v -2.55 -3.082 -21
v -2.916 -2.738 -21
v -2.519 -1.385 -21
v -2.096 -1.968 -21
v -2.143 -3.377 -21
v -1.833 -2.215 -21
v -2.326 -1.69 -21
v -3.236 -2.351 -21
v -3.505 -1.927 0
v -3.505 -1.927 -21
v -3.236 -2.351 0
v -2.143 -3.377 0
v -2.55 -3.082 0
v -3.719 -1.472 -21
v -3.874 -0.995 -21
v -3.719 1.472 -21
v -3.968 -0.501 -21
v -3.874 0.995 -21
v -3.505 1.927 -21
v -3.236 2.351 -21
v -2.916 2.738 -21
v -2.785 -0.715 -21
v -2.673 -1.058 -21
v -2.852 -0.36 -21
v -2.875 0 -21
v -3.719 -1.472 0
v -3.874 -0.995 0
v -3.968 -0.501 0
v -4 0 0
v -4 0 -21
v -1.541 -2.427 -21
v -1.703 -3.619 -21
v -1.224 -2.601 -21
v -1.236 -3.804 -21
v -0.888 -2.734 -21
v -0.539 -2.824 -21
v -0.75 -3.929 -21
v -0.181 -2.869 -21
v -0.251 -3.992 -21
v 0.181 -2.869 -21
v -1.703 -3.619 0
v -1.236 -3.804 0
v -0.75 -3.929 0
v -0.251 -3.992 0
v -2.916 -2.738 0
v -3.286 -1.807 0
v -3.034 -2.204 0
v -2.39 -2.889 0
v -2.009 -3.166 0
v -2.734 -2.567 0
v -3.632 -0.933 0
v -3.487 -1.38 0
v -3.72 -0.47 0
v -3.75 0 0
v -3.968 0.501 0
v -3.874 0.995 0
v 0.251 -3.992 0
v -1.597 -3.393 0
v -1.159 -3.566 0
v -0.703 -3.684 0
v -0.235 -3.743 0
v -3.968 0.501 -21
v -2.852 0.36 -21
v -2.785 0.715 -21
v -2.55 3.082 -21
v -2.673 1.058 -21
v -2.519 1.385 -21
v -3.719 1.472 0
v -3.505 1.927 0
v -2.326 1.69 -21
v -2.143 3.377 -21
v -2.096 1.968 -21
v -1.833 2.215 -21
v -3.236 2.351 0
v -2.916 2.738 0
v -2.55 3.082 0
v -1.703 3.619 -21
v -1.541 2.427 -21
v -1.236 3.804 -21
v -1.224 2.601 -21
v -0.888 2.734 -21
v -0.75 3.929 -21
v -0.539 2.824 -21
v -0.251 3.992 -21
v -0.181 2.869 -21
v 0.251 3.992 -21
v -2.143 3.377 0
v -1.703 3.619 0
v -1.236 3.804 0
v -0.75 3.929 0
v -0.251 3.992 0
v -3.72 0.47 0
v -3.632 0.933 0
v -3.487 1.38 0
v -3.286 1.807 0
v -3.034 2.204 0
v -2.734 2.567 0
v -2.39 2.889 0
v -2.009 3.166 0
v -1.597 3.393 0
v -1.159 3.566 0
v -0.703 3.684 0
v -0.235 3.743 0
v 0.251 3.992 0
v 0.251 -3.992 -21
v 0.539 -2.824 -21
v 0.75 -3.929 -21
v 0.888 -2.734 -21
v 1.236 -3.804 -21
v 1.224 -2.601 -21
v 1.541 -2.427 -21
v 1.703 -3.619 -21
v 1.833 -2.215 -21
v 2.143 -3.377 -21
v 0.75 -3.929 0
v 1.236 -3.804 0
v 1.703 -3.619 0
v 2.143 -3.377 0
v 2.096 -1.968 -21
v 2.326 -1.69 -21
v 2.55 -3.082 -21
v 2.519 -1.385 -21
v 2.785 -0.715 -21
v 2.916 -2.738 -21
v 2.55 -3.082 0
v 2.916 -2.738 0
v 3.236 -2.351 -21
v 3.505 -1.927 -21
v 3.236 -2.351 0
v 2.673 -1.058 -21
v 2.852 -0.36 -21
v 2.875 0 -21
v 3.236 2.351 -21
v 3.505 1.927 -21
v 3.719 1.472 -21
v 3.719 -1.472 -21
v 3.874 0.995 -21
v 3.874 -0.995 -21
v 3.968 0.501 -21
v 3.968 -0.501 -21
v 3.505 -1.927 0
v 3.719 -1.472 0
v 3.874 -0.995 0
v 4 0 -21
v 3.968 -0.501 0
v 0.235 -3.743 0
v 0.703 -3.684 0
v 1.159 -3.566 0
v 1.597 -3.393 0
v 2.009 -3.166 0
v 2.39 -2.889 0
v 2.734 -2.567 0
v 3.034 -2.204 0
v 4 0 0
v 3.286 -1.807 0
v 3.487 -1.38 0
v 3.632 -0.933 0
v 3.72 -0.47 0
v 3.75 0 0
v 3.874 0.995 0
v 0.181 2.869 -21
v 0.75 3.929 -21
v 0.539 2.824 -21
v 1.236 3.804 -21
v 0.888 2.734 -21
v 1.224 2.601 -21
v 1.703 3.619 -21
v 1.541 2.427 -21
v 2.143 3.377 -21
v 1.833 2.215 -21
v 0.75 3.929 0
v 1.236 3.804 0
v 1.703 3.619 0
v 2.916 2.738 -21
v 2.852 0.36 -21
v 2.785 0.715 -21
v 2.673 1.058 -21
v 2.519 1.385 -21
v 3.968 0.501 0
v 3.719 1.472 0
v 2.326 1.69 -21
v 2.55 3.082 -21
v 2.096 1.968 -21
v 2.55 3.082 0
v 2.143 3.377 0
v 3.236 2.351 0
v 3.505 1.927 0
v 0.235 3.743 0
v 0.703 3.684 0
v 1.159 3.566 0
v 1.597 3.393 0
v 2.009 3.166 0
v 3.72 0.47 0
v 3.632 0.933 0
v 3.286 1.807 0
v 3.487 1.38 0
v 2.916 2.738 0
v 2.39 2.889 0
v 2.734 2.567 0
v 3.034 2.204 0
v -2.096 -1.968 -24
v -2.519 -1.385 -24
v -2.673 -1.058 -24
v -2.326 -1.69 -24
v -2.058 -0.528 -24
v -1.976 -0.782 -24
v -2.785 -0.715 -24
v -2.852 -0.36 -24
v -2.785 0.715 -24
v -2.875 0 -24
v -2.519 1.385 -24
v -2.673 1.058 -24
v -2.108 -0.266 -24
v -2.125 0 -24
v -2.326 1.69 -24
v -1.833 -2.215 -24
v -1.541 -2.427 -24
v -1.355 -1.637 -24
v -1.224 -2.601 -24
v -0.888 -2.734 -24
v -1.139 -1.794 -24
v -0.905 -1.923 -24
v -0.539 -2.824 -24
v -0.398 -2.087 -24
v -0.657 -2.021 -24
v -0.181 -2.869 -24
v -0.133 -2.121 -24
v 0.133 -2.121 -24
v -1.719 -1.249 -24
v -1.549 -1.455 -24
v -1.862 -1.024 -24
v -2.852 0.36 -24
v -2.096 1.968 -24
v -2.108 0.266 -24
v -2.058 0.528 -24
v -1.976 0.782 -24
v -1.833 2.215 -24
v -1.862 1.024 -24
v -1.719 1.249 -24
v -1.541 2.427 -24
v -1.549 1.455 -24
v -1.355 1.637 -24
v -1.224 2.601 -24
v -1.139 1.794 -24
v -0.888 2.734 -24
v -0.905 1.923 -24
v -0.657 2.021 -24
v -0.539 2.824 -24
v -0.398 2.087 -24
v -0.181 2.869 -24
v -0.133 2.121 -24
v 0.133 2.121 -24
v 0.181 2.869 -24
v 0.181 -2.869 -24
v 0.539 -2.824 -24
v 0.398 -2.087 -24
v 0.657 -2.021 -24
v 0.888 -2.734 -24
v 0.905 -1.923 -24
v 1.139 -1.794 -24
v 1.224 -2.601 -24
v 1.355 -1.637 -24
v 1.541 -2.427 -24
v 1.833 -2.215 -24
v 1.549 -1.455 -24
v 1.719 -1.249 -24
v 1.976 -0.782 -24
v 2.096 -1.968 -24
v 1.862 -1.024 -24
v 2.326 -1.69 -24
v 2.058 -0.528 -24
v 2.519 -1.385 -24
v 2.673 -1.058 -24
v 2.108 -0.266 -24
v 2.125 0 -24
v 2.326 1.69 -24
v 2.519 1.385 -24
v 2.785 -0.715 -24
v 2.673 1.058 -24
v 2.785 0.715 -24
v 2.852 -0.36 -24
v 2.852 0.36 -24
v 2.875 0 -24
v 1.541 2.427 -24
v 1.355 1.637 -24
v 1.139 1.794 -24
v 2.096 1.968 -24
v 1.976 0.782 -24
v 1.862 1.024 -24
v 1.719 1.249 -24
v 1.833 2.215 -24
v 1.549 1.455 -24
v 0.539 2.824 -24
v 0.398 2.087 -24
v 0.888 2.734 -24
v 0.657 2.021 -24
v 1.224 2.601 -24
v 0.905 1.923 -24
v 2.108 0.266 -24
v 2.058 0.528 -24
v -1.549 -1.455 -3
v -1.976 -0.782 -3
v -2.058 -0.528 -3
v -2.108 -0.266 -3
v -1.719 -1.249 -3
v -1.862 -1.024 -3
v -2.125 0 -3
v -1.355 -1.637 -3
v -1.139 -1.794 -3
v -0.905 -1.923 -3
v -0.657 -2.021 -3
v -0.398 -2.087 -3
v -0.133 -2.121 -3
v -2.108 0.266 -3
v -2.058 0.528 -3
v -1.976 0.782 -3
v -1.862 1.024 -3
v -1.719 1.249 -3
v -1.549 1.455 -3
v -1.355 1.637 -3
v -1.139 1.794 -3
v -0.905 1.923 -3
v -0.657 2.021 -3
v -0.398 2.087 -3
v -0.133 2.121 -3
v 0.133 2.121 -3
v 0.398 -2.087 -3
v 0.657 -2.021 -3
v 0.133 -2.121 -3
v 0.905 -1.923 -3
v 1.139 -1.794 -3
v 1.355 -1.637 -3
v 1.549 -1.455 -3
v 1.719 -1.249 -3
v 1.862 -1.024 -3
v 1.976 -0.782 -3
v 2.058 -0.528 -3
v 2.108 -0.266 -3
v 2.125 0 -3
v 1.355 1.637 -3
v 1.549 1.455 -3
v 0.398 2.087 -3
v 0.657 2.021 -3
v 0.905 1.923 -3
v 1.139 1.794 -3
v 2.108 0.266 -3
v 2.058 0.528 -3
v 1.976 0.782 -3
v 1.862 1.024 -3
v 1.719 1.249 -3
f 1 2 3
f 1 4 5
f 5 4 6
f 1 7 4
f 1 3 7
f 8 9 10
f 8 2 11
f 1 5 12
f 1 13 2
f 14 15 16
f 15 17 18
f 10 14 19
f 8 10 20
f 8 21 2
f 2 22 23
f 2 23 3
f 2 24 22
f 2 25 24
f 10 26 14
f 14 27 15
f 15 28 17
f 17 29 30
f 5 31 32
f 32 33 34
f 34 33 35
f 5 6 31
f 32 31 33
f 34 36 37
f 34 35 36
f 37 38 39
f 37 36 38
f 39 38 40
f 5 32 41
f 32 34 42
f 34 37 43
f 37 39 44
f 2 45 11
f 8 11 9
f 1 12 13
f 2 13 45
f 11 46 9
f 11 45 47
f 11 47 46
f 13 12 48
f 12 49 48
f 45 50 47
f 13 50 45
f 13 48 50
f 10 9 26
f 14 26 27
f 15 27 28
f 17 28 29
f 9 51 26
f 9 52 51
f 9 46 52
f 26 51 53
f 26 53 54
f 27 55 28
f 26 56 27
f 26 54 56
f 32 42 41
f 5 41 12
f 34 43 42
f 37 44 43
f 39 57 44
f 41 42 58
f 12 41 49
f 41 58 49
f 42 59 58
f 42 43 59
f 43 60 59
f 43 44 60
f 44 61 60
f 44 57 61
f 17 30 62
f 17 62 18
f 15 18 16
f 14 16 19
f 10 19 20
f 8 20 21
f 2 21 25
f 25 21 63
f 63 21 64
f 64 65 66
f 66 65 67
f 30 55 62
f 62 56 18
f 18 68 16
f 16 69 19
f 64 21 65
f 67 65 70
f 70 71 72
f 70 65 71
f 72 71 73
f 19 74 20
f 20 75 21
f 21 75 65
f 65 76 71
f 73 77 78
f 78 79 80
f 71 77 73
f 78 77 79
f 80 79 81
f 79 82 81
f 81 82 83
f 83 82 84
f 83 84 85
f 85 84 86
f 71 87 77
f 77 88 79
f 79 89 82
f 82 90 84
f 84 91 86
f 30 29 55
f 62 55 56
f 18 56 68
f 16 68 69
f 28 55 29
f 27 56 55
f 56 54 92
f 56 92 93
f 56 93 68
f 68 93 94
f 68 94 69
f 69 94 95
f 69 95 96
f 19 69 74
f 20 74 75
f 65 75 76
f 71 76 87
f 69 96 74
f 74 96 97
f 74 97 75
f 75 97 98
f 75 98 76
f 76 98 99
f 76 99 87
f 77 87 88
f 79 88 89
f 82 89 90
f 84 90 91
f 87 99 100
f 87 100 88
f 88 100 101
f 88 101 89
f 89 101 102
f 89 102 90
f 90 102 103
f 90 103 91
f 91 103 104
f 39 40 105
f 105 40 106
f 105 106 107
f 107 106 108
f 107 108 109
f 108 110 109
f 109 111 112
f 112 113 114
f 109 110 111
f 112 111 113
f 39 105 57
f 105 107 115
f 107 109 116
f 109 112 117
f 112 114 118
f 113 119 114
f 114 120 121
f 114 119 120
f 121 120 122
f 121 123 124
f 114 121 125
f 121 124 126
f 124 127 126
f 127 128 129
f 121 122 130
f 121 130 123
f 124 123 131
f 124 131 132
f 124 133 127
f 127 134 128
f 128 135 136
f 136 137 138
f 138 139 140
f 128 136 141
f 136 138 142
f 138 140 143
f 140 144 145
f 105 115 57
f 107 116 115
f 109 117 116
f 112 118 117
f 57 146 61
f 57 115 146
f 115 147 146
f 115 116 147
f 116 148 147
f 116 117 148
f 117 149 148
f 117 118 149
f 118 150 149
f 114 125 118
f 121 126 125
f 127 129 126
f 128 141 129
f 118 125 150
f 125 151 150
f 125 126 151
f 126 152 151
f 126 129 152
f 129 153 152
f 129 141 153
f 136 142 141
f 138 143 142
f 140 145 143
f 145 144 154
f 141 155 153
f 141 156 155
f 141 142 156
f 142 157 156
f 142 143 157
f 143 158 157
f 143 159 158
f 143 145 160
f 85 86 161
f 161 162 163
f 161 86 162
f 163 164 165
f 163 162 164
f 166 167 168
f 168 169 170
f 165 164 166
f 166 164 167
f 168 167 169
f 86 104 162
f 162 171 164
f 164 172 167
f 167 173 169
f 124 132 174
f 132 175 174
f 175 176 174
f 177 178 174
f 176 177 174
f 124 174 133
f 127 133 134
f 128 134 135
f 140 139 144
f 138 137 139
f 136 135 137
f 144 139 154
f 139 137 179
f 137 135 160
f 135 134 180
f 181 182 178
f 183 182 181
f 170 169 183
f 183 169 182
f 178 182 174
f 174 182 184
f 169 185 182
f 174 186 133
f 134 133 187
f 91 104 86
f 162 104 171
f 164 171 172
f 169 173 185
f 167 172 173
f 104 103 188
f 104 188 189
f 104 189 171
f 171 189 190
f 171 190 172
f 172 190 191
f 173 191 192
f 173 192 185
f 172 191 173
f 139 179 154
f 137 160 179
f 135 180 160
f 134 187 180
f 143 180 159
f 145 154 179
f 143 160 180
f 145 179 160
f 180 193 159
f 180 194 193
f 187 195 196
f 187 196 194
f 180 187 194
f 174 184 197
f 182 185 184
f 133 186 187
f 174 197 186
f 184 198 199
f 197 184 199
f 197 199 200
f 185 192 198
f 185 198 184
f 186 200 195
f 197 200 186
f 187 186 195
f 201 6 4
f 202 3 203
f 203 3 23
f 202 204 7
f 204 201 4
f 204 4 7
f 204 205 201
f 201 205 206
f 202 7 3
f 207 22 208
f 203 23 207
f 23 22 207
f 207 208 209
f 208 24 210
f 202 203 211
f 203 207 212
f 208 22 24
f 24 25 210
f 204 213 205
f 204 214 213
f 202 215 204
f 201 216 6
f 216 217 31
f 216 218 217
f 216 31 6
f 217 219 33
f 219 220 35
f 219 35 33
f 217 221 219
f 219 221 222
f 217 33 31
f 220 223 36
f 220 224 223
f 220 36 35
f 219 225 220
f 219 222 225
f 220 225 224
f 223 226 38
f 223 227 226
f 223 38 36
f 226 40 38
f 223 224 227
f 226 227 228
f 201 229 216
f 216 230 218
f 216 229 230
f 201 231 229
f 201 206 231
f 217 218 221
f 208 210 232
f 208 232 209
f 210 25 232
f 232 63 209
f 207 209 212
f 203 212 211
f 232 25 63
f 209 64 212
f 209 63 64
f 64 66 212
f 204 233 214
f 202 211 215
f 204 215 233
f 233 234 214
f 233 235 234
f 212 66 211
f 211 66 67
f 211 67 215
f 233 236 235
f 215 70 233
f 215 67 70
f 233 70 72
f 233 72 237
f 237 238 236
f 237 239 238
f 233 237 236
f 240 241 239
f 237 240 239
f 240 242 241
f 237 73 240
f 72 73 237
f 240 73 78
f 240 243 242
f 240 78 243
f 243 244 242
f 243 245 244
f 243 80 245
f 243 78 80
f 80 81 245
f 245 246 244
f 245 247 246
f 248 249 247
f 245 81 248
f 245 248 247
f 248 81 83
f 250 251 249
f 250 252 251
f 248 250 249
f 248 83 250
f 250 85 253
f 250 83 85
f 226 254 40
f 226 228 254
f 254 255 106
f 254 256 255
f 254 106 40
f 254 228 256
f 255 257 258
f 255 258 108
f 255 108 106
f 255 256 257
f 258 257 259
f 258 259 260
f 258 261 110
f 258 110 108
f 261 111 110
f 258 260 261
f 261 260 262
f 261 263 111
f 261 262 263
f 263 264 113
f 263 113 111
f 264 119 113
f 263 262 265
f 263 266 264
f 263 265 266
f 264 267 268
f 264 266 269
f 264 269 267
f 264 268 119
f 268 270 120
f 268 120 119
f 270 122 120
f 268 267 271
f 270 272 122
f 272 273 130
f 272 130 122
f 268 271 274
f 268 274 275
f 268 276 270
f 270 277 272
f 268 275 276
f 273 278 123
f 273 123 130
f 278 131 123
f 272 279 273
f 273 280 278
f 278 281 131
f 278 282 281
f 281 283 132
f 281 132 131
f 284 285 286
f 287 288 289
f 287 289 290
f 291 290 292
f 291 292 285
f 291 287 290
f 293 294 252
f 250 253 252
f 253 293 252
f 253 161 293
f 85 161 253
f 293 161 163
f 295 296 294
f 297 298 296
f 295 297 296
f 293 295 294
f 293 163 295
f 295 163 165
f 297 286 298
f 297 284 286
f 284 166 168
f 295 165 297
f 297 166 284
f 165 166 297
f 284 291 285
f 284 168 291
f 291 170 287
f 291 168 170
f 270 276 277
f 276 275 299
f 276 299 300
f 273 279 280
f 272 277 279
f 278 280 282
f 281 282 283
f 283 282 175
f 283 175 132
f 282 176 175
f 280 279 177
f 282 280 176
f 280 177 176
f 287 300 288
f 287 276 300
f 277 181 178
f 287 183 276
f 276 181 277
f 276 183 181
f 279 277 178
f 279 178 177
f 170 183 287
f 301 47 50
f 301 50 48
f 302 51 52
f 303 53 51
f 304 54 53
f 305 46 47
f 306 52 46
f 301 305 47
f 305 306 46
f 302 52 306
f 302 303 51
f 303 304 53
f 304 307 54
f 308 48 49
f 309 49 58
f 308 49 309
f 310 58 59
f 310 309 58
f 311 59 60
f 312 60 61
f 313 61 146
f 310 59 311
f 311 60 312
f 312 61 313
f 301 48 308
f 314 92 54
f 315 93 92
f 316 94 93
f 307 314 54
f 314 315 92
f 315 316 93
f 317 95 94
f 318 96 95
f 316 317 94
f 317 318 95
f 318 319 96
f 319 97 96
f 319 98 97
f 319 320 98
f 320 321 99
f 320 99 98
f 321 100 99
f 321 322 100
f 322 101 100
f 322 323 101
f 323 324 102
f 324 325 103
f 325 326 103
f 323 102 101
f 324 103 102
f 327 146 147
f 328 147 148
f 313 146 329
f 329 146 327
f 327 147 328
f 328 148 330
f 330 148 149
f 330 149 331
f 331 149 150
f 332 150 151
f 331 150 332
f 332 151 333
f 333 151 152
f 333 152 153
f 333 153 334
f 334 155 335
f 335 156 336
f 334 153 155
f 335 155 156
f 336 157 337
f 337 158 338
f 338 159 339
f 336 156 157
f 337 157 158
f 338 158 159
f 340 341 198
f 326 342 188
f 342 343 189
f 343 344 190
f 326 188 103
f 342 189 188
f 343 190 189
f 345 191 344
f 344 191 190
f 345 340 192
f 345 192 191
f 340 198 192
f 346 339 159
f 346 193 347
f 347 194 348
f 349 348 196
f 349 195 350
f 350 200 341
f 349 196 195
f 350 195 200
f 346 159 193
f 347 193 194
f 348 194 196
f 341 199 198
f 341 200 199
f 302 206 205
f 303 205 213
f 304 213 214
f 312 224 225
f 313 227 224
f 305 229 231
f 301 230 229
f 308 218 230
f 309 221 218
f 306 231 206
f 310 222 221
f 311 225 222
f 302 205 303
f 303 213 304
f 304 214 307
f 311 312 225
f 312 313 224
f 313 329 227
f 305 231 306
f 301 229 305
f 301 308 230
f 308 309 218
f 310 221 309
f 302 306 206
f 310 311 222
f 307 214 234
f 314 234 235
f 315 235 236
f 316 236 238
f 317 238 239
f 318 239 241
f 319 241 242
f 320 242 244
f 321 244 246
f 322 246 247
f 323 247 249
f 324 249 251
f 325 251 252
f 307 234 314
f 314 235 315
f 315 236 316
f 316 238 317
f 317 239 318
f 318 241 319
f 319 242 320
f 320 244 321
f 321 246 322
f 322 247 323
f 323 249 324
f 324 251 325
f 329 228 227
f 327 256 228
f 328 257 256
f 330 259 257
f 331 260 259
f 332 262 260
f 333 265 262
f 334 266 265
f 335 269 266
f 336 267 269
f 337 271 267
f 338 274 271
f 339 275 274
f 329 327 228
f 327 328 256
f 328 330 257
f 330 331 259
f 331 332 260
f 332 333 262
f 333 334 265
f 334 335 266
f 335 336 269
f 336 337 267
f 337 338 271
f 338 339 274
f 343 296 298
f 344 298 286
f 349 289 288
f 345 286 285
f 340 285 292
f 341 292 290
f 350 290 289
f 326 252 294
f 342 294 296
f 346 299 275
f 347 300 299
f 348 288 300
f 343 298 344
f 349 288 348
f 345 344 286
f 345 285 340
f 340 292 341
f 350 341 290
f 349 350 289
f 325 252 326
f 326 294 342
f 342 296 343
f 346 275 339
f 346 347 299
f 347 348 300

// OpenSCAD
$fn = 50;

difference() {
	union() {
		translate(v = [0, 0, -21.0]) {
			cylinder(h = 21, r = 4.0);
		}
		#translate(v = [0, 0, -24.0]) {
			cylinder(h = 24, r = 2.875);
		}
	}
	union() {
		translate(v = [0, 0, 0]) {
			rotate(a = [0, 0, 0]) {
				difference() {
					union() {
						translate(v = [0, 0, -24.0]) {
							cylinder(h = 24, r = 2.0);
						}
						translate(v = [0, 0, -3]) {
							cylinder(h = 3, r1 = 2.125, r2 = 3.75);
						}
						translate(v = [0, 0, -24.0]) {
							cylinder(h = 24, r = 2.125);
						}
						translate(v = [0, 0, -24.0]) {
							cylinder(h = 24, r = 2.0);
						}
					}
					union();
				}
			}
		}
	}
}
